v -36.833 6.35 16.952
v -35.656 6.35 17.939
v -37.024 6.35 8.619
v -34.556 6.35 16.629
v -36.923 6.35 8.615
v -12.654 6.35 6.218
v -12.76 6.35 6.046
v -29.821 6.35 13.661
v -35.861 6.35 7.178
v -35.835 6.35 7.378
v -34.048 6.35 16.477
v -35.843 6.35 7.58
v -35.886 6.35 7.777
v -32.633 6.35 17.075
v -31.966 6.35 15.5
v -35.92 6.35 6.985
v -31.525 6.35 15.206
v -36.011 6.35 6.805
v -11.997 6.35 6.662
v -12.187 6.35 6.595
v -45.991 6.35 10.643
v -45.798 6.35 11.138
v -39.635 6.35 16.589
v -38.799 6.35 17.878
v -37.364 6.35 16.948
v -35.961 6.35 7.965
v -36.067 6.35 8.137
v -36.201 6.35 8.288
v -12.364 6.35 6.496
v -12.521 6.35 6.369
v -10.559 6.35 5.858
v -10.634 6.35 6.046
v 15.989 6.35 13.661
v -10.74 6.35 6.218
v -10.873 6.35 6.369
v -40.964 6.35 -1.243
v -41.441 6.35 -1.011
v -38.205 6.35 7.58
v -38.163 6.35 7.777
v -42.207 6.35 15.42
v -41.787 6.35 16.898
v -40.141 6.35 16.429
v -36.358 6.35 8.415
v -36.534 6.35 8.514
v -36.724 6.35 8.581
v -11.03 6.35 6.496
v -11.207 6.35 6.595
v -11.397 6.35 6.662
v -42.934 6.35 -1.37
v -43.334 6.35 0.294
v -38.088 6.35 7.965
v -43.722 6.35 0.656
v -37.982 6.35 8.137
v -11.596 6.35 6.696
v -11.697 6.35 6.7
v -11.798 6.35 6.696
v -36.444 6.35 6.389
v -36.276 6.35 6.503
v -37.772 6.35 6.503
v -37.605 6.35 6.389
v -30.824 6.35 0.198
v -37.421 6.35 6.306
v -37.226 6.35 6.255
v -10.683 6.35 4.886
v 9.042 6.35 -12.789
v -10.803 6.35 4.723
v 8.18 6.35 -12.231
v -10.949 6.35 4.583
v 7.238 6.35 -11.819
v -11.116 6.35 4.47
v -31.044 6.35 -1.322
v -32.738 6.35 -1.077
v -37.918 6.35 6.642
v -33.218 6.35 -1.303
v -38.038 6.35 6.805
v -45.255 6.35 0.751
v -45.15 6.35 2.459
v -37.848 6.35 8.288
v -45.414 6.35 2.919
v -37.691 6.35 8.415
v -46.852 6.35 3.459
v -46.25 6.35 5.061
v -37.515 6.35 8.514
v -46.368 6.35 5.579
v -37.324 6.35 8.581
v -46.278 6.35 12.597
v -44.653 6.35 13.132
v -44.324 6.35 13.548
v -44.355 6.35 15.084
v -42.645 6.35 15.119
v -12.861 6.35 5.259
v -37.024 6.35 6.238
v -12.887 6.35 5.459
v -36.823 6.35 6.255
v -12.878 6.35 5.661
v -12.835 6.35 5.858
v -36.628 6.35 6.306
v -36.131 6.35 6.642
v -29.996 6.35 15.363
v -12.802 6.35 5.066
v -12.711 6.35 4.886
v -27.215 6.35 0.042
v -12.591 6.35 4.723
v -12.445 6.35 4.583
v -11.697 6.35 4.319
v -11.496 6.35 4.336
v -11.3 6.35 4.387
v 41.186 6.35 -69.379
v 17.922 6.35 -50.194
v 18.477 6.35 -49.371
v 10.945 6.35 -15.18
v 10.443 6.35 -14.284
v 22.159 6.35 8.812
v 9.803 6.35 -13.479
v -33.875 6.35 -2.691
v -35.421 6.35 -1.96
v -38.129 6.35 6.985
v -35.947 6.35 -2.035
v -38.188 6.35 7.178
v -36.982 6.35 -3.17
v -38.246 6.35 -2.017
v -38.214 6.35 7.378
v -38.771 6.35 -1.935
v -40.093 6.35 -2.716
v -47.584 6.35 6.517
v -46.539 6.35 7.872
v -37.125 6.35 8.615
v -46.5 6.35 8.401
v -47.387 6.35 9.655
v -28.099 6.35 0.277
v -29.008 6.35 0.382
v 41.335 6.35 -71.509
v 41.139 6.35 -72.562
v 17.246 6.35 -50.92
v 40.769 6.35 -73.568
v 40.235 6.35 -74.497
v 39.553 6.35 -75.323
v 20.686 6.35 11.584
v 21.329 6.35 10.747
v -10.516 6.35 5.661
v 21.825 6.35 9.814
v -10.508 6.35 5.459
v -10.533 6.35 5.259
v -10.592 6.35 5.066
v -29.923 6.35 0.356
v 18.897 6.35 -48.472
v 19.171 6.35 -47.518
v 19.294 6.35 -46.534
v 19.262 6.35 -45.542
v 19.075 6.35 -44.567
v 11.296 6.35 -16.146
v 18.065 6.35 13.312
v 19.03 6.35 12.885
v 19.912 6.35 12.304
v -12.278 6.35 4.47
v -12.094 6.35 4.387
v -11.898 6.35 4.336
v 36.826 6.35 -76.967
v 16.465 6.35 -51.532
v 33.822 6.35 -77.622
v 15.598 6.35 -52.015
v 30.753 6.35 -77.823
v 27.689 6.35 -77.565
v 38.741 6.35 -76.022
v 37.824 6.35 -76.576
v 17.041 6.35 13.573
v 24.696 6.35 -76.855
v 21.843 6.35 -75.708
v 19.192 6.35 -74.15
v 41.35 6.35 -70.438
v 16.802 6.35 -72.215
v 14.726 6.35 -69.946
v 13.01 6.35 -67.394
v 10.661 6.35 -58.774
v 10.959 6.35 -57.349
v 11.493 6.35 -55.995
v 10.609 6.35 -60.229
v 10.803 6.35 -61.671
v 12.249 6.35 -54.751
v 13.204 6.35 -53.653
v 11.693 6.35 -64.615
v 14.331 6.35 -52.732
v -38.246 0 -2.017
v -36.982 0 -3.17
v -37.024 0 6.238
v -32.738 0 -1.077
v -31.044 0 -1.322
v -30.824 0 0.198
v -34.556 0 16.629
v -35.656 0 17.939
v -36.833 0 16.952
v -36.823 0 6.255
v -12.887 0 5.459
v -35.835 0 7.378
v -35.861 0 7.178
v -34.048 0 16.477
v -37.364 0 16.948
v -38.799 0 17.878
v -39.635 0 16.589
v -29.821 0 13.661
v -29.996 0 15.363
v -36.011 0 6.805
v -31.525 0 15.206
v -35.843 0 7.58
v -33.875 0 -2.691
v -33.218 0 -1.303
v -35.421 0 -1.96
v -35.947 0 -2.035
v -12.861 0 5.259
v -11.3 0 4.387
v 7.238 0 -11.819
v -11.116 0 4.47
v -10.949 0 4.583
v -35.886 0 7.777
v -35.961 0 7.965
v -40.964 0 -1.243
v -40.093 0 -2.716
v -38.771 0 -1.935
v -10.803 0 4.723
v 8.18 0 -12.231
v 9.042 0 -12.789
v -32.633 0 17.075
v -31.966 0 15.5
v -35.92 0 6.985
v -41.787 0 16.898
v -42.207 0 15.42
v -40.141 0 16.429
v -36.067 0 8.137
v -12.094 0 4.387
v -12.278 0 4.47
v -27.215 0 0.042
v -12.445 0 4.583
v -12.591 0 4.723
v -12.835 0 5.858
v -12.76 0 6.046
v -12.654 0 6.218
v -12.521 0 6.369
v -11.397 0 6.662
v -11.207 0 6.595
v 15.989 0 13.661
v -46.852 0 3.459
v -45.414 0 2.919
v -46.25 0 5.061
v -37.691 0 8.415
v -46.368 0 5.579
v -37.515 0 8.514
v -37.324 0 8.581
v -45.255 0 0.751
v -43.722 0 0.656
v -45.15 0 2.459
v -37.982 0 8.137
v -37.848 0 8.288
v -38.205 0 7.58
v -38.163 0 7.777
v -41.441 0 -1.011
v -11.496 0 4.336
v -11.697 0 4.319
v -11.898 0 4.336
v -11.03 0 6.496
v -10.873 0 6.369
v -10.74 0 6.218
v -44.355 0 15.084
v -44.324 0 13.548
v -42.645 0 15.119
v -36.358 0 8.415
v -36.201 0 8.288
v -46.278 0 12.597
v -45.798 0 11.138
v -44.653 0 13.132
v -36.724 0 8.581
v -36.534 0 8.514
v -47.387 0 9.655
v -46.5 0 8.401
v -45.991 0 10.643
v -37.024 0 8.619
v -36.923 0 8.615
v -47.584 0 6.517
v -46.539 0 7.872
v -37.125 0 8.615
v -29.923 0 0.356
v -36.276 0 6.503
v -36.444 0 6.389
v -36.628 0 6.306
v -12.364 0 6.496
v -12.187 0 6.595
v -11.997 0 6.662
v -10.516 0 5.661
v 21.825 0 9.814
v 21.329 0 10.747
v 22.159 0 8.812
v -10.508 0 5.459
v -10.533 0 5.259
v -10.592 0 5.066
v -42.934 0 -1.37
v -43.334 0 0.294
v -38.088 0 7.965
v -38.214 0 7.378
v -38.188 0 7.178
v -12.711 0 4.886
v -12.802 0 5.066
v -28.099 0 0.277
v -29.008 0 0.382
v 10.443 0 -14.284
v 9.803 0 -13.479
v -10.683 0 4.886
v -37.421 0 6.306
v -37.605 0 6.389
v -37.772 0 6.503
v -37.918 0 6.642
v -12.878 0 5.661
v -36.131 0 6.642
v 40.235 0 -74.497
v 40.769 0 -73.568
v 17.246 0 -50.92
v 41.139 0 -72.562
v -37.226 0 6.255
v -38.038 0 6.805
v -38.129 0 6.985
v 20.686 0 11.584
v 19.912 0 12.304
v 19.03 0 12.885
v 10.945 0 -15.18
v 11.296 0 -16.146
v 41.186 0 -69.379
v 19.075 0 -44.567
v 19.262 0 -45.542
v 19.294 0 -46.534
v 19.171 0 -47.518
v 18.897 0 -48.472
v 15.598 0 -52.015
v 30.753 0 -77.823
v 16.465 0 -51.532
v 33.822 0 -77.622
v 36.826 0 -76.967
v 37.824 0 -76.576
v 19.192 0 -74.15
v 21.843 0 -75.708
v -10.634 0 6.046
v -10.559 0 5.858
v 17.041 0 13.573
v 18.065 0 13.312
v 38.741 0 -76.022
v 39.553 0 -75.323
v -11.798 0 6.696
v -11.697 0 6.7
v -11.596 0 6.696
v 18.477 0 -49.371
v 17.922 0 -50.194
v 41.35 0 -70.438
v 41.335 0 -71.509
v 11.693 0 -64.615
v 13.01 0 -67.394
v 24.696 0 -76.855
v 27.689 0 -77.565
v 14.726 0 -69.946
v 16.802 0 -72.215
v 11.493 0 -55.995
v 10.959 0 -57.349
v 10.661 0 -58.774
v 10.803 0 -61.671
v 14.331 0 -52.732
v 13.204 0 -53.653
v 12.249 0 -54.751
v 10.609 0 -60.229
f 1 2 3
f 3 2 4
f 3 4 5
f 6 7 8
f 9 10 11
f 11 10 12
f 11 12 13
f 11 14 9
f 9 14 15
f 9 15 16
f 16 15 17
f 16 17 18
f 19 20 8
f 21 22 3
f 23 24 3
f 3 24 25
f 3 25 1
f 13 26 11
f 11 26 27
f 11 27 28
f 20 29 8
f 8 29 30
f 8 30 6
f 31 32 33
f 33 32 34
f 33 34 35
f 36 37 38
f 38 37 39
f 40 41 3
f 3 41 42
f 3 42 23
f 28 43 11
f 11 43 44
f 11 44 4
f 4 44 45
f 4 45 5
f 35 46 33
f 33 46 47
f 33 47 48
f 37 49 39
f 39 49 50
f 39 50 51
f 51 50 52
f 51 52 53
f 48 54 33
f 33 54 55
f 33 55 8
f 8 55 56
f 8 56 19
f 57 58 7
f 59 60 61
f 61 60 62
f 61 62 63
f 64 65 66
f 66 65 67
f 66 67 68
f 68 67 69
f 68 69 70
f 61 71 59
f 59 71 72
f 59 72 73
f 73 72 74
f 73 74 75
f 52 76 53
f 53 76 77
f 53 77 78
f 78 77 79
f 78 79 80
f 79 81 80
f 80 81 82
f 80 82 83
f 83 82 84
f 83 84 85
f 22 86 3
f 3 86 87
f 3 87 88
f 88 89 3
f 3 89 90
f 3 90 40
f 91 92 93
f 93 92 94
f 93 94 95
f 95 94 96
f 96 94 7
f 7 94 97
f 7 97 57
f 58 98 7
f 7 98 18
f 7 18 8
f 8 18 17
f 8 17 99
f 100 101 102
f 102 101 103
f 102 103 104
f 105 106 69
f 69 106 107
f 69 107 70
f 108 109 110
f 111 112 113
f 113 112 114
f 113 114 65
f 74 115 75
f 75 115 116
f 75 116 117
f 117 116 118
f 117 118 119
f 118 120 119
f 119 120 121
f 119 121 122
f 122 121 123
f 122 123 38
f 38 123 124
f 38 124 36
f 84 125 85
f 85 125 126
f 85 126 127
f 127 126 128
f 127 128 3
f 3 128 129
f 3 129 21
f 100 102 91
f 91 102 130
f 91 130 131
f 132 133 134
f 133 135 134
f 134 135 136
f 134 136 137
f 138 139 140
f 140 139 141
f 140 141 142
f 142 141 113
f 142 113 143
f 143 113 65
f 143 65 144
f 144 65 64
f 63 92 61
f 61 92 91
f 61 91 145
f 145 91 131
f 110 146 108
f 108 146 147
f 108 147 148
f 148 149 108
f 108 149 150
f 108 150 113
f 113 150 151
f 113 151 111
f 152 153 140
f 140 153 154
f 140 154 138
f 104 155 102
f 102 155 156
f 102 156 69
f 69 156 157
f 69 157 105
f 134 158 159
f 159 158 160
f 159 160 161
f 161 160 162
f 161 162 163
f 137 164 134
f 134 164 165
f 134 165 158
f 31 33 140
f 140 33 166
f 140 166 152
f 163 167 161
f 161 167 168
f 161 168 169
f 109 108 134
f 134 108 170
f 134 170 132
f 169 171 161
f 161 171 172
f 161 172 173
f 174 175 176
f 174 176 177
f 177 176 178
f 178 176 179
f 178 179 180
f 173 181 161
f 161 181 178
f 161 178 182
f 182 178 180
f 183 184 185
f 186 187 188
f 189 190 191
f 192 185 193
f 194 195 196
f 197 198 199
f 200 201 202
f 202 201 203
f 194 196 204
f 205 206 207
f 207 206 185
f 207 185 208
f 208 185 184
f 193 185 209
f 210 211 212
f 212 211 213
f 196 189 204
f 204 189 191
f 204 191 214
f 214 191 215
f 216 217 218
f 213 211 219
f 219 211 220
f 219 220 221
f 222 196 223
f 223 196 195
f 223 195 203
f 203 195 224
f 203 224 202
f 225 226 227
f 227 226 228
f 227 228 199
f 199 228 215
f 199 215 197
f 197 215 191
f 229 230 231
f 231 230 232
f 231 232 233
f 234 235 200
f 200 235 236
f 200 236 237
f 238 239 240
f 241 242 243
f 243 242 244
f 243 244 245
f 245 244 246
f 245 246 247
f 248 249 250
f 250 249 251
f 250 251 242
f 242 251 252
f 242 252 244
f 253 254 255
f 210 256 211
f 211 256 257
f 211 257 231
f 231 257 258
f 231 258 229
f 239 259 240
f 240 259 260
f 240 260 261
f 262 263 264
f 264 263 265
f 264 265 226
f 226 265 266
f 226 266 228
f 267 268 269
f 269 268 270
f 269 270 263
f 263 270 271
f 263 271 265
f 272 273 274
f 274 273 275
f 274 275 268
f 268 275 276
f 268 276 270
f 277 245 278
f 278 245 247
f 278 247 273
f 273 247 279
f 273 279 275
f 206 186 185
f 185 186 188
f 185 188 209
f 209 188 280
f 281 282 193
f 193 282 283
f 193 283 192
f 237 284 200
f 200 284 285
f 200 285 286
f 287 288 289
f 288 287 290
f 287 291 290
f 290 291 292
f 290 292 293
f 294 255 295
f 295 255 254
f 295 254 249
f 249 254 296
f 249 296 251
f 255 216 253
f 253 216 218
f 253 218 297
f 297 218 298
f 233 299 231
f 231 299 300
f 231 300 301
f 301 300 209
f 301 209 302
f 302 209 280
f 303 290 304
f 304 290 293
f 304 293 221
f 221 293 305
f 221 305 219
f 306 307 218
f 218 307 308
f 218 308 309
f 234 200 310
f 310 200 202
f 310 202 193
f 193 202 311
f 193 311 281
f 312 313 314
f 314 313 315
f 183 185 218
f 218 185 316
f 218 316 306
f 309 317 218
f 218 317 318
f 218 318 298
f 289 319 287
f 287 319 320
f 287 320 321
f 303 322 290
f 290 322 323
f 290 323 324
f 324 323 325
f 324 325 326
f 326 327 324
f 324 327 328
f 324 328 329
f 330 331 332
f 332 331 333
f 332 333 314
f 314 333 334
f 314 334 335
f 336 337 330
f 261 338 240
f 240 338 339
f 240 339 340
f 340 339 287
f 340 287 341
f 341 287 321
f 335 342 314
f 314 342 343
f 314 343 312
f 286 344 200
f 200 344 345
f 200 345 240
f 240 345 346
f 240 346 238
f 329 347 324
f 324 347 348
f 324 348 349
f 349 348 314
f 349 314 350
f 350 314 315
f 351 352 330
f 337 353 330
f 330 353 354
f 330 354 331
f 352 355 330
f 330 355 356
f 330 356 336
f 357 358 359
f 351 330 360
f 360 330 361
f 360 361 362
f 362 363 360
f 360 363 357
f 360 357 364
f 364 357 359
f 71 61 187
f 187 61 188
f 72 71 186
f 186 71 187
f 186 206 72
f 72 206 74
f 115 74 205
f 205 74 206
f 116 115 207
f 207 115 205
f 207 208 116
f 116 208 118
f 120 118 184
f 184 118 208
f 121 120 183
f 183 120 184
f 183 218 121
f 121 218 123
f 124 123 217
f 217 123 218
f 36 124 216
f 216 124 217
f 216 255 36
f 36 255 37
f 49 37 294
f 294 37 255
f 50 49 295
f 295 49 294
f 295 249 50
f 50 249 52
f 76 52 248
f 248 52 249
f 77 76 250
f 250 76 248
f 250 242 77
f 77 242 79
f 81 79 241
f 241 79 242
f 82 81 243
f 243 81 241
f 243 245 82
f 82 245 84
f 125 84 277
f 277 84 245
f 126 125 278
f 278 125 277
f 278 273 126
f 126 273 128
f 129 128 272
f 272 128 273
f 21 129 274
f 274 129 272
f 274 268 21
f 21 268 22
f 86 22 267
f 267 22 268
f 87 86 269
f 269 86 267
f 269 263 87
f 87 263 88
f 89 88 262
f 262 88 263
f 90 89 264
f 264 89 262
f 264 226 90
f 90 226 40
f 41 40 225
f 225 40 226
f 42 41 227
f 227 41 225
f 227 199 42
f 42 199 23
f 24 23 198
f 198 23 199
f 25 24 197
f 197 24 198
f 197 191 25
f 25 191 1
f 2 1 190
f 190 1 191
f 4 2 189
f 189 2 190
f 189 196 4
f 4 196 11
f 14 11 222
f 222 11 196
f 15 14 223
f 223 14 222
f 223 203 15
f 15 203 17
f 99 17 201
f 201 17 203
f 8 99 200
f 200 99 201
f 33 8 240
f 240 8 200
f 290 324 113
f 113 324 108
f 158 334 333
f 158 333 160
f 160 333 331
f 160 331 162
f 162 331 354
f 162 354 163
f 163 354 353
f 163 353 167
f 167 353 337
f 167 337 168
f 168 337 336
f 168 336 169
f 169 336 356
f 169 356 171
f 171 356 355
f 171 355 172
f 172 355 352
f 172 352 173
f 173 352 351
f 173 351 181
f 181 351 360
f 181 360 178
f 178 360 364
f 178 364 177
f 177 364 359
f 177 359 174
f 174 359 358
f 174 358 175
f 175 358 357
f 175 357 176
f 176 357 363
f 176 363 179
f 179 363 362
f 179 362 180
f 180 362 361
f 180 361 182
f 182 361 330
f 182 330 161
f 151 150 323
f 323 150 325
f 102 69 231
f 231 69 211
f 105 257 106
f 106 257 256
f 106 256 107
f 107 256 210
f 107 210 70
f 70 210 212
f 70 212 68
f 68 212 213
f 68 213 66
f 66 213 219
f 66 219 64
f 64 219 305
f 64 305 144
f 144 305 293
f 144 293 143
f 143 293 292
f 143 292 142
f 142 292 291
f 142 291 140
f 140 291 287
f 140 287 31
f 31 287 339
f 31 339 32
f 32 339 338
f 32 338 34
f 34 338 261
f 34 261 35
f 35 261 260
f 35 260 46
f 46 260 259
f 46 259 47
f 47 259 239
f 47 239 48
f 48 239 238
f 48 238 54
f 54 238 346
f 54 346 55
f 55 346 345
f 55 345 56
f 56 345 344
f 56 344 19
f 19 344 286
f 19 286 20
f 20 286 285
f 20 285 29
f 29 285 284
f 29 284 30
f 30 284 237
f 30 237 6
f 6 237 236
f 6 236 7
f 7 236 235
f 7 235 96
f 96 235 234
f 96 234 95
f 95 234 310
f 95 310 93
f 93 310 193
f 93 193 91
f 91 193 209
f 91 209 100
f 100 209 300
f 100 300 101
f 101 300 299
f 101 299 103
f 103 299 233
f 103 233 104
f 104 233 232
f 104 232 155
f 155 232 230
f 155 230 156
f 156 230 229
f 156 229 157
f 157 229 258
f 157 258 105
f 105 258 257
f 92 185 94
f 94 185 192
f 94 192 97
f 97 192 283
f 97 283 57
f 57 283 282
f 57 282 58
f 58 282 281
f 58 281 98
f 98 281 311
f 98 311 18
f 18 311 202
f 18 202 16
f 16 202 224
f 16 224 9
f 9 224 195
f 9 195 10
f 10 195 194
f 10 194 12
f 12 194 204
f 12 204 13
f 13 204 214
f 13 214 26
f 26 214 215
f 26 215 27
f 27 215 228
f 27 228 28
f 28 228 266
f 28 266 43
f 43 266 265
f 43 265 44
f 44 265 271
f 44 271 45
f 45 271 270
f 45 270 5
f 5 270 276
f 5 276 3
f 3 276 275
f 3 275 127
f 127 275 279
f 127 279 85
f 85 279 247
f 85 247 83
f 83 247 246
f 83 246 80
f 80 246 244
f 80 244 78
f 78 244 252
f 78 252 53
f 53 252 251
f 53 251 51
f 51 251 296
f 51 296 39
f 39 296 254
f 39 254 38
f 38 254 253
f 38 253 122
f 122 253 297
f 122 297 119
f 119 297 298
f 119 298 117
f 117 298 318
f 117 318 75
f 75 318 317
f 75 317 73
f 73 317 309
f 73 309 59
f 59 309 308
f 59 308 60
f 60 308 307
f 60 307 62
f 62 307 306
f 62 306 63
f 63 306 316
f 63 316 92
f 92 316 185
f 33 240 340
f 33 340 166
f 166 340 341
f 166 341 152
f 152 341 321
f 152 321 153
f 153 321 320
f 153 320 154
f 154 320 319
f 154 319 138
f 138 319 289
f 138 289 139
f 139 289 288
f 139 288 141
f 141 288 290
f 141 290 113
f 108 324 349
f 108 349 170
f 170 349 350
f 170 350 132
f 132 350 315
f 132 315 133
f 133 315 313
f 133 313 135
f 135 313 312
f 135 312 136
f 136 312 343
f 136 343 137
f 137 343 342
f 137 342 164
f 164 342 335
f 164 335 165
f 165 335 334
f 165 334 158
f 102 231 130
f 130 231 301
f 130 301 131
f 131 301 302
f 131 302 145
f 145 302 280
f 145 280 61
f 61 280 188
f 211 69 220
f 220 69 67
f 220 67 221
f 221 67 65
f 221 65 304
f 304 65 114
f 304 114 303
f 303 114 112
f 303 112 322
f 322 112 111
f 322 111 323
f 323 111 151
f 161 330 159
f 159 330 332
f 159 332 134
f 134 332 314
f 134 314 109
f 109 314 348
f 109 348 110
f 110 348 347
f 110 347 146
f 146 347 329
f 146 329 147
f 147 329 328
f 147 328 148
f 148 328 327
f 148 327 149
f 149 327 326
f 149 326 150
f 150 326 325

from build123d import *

# Parameters (mm, degrees)
SKETCH1_R           = 1.190625
BOSS_EXTRUDE1_DEPTH = 6.35
FILLET1_R           = 6.35


with BuildPart() as part:
    # Sketch1 → Boss-Extrude1 (new body)
    with BuildSketch(Plane(origin=(0, 0, 0), x_dir=(1, 0, 0), z_dir=(0, 1, 0))):
        with BuildLine():
            Line((-29.821169202, -13.660880054), (20.978830798, -13.660880054))
            Line((20.978830798, -13.660880054), (42.395952597, 74.352713283))
            ThreePointArc((42.395952597, 74.352713283), (23.25712174, 76.338412105), (10.802994012, 61.671014622))
            ThreePointArc((10.802994012, 61.671014622), (13.079862123, 53.776279051), (20.951622371, 51.421206075))
            Line((20.951622371, 51.421206075), (10.410154917, 12.910611329))
            Line((10.410154917, 12.910611329), (-29.996286473, -0.999994782))
            ThreePointArc((-29.996286473, -0.999994782), (-30.398101975, -0.586570963), (-30.824193291, -0.198213985))
            Line((-30.824193291, -0.198213985), (-31.044454647, 1.322241923))
            Line((-31.044454647, 1.322241923), (-32.73765618, 1.076955714))
            ThreePointArc((-32.73765618, 1.076955714), (-32.976313311, 1.193094592), (-33.218113701, 1.302538808))
            Line((-33.218113701, 1.302538808), (-33.874715297, 2.691486458))
            Line((-33.874715297, 2.691486458), (-35.421467347, 1.960285492))
            ThreePointArc((-35.421467347, 1.960285492), (-35.683694268, 2.001303864), (-35.946962256, 2.035000026))
            Line((-35.946962256, 2.035000026), (-36.982128516, 3.170223372))
            Line((-36.982128516, 3.170223372), (-38.246329537, 2.017447359))
            ThreePointArc((-38.246329537, 2.017447359), (-38.509052422, 1.979735943), (-38.770622576, 1.934719064))
            Line((-38.770622576, 1.934719064), (-40.093267325, 2.716327725))
            Line((-40.093267325, 2.716327725), (-40.963677954, 1.243411538))
            ThreePointArc((-40.963677954, 1.243411538), (-41.203779335, 1.130288631), (-41.440635618, 1.010519829))
            Line((-41.440635618, 1.010519829), (-42.934376923, 1.369738627))
            Line((-42.934376923, 1.369738627), (-43.334408136, -0.293713141))
            ThreePointArc((-43.334408136, -0.293713141), (-43.530761052, -0.472293647), (-43.722062046, -0.656275697))
            Line((-43.722062046, -0.656275697), (-45.255462875, -0.751055081))
            Line((-45.255462875, -0.751055081), (-45.149915191, -2.458672264))
            ThreePointArc((-45.149915191, -2.458672264), (-45.285242191, -2.686996744), (-45.414154972, -2.919003123))
            Line((-45.414154972, -2.919003123), (-46.852288576, -3.459440878))
            Line((-46.852288576, -3.459440878), (-46.250449331, -5.060967113))
            ThreePointArc((-46.250449331, -5.060967113), (-46.312842744, -5.318944878), (-46.368024039, -5.57856092))
            Line((-46.368024039, -5.57856092), (-47.58434641, -6.517102938))
            Line((-47.58434641, -6.517102938), (-46.539172541, -7.871616999))
            ThreePointArc((-46.539172541, -7.871616999), (-46.523142255, -8.136548112), (-46.499736562, -8.400929727))
            Line((-46.499736562, -8.400929727), (-47.387221268, -9.654991978))
            Line((-47.387221268, -9.654991978), (-45.990679537, -10.643307692))
            ThreePointArc((-45.990679537, -10.643307692), (-45.897636087, -10.89188038), (-45.797702915, -11.137764145))
            Line((-45.797702915, -11.137764145), (-46.278258552, -12.596999395))
            Line((-46.278258552, -12.596999395), (-44.653233223, -13.132153052))
            ThreePointArc((-44.653233223, -13.132153052), (-44.491363673, -13.34249495), (-44.323696325, -13.548245102))
            Line((-44.323696325, -13.548245102), (-44.355037921, -15.084252569))
            Line((-44.355037921, -15.084252569), (-42.644517948, -15.11915502))
            ThreePointArc((-42.644517948, -15.11915502), (-42.428065496, -15.272757758), (-42.207417329, -15.420269965))
            Line((-42.207417329, -15.420269965), (-41.78678708, -16.897893539))
            Line((-41.78678708, -16.897893539), (-40.141284249, -16.429473653))
            ThreePointArc((-40.141284249, -16.429473653), (-39.889294943, -16.512821445), (-39.635081193, -16.589115838))
            Line((-39.635081193, -16.589115838), (-38.799491125, -17.878336715))
            Line((-38.799491125, -17.878336715), (-37.363796242, -16.947811616))
            ThreePointArc((-37.363796242, -16.947811616), (-37.098443082, -16.953570537), (-36.833032482, -16.951933832))
            Line((-36.833032482, -16.951933832), (-35.656007696, -17.939311107))
            Line((-35.656007696, -17.939311107), (-34.556450183, -16.628559402))
            ThreePointArc((-34.556450183, -16.628559402), (-34.301082079, -16.556222714), (-34.047828595, -16.476798928))
            Line((-34.047828595, -16.476798928), (-32.632937655, -17.075451466))
            Line((-32.632937655, -17.075451466), (-31.966269592, -15.499808597))
            ThreePointArc((-31.966269592, -15.499808597), (-31.743356851, -15.355741339), (-31.52454472, -15.205519116))
            Line((-31.52454472, -15.205519116), (-29.996286473, -15.362770384))
            Line((-29.996286473, -15.362770384), (-29.821169202, -13.660880054))
        make_face()
        with Locations(Location((-37.024468694, -7.428857796, 0), (0, 0, 270))):
            Circle(SKETCH1_R, mode=Mode.SUBTRACT)
        with Locations(Location((-11.697065196, -5.509839295, 0), (0, 0, 270))):
            Circle(SKETCH1_R, mode=Mode.SUBTRACT)
    extrude(amount=BOSS_EXTRUDE1_DEPTH)

    # Fillet1
    # the kernel refuses this fillet: 6.35 mm, written as the material it adds along each edge
    with BuildSketch(Plane(origin=(-29.996286473, 0, 0.999994782), x_dir=(0.9455362039998026, 0, -0.3255169533613324), z_dir=(0, 1, 0))) as fillet1_piece_1:
        with BuildLine():
            CenterArc((2.941509547, 6.35), FILLET1_R, 236.94754351, 33.05245649)
            ThreePointArc((-0.521822628, 1.027610476), (-0.245354643, 0.521704946), (0, 0))
            Line((0, 0), (2.941509547, 0))
        make_face()
    extrude(amount=6.35)
    with BuildSketch(Plane(origin=(10.410154917, 0, -12.910611329), x_dir=(0.2640166060846216, 0, -0.9645181344648517), z_dir=(0, 1, 0))) as fillet1_piece_2:
        with BuildLine():
            CenterArc((FILLET1_R * 0.528295396262, FILLET1_R), FILLET1_R, 214.305424952, 55.694575048)
            Line((-FILLET1_R * 0.297749538039, FILLET1_R * 0.436395735897), (0, 0))
            Line((0, 0), (FILLET1_R * 0.528295396262, 0))
        make_face()
    extrude(amount=6.35)
    with BuildSketch(Plane(origin=(20.951622371, 0, -51.421206075), x_dir=(-0.9938958560926382, 0, -0.11032237869934564), z_dir=(0, 1, 0))) as fillet1_piece_3:
        with BuildLine():
            CenterArc((7.380811015, 6.028648653), FILLET1_R, 171.02537205, 80.668791662)
            Line((1.108550782, 7.019230085), (0, 0))
            ThreePointArc((0, 0), (2.693172408, 0.433927926), (5.386344816, 0))
        make_face()
    extrude(amount=6.35)
    # the kernel refuses this fillet: 6.35 mm, written as the material it takes off along each edge
    with BuildSketch(Plane(origin=(20.978830798, -12.475246836, 13.660880054), x_dir=(-1, 0, 0), z_dir=(0, 1, 0))) as fillet1_2_piece_1:
        with BuildLine():
            CenterArc((FILLET1_R * 0.785842320361, -FILLET1_R), FILLET1_R, 90, 76.323524065)
            Line((-FILLET1_R * 0.185803956952, -FILLET1_R * 0.763560765133), (0, 0))
            Line((0, 0), (FILLET1_R * 0.785842320361, 0))
        make_face()
    extrude(amount=31.300493671, mode=Mode.SUBTRACT)
    with BuildSketch(Plane(origin=(42.395952597, -15.381047636, -74.352713283), x_dir=(-0.23643923486666696, 0, 0.9716462773127189), z_dir=(0, 1, 0))) as fillet1_2_piece_2:
        with BuildLine():
            CenterArc((5.118829866, -6.35), FILLET1_R, 90, 87.108005414)
            ThreePointArc((-1.223082878, -6.029620925), (-0.837554928, -2.968964591), (0, 0))
            Line((0, 0), (5.118829866, 0))
        make_face()
    extrude(amount=37.112095273, mode=Mode.SUBTRACT)


solid = part.part
